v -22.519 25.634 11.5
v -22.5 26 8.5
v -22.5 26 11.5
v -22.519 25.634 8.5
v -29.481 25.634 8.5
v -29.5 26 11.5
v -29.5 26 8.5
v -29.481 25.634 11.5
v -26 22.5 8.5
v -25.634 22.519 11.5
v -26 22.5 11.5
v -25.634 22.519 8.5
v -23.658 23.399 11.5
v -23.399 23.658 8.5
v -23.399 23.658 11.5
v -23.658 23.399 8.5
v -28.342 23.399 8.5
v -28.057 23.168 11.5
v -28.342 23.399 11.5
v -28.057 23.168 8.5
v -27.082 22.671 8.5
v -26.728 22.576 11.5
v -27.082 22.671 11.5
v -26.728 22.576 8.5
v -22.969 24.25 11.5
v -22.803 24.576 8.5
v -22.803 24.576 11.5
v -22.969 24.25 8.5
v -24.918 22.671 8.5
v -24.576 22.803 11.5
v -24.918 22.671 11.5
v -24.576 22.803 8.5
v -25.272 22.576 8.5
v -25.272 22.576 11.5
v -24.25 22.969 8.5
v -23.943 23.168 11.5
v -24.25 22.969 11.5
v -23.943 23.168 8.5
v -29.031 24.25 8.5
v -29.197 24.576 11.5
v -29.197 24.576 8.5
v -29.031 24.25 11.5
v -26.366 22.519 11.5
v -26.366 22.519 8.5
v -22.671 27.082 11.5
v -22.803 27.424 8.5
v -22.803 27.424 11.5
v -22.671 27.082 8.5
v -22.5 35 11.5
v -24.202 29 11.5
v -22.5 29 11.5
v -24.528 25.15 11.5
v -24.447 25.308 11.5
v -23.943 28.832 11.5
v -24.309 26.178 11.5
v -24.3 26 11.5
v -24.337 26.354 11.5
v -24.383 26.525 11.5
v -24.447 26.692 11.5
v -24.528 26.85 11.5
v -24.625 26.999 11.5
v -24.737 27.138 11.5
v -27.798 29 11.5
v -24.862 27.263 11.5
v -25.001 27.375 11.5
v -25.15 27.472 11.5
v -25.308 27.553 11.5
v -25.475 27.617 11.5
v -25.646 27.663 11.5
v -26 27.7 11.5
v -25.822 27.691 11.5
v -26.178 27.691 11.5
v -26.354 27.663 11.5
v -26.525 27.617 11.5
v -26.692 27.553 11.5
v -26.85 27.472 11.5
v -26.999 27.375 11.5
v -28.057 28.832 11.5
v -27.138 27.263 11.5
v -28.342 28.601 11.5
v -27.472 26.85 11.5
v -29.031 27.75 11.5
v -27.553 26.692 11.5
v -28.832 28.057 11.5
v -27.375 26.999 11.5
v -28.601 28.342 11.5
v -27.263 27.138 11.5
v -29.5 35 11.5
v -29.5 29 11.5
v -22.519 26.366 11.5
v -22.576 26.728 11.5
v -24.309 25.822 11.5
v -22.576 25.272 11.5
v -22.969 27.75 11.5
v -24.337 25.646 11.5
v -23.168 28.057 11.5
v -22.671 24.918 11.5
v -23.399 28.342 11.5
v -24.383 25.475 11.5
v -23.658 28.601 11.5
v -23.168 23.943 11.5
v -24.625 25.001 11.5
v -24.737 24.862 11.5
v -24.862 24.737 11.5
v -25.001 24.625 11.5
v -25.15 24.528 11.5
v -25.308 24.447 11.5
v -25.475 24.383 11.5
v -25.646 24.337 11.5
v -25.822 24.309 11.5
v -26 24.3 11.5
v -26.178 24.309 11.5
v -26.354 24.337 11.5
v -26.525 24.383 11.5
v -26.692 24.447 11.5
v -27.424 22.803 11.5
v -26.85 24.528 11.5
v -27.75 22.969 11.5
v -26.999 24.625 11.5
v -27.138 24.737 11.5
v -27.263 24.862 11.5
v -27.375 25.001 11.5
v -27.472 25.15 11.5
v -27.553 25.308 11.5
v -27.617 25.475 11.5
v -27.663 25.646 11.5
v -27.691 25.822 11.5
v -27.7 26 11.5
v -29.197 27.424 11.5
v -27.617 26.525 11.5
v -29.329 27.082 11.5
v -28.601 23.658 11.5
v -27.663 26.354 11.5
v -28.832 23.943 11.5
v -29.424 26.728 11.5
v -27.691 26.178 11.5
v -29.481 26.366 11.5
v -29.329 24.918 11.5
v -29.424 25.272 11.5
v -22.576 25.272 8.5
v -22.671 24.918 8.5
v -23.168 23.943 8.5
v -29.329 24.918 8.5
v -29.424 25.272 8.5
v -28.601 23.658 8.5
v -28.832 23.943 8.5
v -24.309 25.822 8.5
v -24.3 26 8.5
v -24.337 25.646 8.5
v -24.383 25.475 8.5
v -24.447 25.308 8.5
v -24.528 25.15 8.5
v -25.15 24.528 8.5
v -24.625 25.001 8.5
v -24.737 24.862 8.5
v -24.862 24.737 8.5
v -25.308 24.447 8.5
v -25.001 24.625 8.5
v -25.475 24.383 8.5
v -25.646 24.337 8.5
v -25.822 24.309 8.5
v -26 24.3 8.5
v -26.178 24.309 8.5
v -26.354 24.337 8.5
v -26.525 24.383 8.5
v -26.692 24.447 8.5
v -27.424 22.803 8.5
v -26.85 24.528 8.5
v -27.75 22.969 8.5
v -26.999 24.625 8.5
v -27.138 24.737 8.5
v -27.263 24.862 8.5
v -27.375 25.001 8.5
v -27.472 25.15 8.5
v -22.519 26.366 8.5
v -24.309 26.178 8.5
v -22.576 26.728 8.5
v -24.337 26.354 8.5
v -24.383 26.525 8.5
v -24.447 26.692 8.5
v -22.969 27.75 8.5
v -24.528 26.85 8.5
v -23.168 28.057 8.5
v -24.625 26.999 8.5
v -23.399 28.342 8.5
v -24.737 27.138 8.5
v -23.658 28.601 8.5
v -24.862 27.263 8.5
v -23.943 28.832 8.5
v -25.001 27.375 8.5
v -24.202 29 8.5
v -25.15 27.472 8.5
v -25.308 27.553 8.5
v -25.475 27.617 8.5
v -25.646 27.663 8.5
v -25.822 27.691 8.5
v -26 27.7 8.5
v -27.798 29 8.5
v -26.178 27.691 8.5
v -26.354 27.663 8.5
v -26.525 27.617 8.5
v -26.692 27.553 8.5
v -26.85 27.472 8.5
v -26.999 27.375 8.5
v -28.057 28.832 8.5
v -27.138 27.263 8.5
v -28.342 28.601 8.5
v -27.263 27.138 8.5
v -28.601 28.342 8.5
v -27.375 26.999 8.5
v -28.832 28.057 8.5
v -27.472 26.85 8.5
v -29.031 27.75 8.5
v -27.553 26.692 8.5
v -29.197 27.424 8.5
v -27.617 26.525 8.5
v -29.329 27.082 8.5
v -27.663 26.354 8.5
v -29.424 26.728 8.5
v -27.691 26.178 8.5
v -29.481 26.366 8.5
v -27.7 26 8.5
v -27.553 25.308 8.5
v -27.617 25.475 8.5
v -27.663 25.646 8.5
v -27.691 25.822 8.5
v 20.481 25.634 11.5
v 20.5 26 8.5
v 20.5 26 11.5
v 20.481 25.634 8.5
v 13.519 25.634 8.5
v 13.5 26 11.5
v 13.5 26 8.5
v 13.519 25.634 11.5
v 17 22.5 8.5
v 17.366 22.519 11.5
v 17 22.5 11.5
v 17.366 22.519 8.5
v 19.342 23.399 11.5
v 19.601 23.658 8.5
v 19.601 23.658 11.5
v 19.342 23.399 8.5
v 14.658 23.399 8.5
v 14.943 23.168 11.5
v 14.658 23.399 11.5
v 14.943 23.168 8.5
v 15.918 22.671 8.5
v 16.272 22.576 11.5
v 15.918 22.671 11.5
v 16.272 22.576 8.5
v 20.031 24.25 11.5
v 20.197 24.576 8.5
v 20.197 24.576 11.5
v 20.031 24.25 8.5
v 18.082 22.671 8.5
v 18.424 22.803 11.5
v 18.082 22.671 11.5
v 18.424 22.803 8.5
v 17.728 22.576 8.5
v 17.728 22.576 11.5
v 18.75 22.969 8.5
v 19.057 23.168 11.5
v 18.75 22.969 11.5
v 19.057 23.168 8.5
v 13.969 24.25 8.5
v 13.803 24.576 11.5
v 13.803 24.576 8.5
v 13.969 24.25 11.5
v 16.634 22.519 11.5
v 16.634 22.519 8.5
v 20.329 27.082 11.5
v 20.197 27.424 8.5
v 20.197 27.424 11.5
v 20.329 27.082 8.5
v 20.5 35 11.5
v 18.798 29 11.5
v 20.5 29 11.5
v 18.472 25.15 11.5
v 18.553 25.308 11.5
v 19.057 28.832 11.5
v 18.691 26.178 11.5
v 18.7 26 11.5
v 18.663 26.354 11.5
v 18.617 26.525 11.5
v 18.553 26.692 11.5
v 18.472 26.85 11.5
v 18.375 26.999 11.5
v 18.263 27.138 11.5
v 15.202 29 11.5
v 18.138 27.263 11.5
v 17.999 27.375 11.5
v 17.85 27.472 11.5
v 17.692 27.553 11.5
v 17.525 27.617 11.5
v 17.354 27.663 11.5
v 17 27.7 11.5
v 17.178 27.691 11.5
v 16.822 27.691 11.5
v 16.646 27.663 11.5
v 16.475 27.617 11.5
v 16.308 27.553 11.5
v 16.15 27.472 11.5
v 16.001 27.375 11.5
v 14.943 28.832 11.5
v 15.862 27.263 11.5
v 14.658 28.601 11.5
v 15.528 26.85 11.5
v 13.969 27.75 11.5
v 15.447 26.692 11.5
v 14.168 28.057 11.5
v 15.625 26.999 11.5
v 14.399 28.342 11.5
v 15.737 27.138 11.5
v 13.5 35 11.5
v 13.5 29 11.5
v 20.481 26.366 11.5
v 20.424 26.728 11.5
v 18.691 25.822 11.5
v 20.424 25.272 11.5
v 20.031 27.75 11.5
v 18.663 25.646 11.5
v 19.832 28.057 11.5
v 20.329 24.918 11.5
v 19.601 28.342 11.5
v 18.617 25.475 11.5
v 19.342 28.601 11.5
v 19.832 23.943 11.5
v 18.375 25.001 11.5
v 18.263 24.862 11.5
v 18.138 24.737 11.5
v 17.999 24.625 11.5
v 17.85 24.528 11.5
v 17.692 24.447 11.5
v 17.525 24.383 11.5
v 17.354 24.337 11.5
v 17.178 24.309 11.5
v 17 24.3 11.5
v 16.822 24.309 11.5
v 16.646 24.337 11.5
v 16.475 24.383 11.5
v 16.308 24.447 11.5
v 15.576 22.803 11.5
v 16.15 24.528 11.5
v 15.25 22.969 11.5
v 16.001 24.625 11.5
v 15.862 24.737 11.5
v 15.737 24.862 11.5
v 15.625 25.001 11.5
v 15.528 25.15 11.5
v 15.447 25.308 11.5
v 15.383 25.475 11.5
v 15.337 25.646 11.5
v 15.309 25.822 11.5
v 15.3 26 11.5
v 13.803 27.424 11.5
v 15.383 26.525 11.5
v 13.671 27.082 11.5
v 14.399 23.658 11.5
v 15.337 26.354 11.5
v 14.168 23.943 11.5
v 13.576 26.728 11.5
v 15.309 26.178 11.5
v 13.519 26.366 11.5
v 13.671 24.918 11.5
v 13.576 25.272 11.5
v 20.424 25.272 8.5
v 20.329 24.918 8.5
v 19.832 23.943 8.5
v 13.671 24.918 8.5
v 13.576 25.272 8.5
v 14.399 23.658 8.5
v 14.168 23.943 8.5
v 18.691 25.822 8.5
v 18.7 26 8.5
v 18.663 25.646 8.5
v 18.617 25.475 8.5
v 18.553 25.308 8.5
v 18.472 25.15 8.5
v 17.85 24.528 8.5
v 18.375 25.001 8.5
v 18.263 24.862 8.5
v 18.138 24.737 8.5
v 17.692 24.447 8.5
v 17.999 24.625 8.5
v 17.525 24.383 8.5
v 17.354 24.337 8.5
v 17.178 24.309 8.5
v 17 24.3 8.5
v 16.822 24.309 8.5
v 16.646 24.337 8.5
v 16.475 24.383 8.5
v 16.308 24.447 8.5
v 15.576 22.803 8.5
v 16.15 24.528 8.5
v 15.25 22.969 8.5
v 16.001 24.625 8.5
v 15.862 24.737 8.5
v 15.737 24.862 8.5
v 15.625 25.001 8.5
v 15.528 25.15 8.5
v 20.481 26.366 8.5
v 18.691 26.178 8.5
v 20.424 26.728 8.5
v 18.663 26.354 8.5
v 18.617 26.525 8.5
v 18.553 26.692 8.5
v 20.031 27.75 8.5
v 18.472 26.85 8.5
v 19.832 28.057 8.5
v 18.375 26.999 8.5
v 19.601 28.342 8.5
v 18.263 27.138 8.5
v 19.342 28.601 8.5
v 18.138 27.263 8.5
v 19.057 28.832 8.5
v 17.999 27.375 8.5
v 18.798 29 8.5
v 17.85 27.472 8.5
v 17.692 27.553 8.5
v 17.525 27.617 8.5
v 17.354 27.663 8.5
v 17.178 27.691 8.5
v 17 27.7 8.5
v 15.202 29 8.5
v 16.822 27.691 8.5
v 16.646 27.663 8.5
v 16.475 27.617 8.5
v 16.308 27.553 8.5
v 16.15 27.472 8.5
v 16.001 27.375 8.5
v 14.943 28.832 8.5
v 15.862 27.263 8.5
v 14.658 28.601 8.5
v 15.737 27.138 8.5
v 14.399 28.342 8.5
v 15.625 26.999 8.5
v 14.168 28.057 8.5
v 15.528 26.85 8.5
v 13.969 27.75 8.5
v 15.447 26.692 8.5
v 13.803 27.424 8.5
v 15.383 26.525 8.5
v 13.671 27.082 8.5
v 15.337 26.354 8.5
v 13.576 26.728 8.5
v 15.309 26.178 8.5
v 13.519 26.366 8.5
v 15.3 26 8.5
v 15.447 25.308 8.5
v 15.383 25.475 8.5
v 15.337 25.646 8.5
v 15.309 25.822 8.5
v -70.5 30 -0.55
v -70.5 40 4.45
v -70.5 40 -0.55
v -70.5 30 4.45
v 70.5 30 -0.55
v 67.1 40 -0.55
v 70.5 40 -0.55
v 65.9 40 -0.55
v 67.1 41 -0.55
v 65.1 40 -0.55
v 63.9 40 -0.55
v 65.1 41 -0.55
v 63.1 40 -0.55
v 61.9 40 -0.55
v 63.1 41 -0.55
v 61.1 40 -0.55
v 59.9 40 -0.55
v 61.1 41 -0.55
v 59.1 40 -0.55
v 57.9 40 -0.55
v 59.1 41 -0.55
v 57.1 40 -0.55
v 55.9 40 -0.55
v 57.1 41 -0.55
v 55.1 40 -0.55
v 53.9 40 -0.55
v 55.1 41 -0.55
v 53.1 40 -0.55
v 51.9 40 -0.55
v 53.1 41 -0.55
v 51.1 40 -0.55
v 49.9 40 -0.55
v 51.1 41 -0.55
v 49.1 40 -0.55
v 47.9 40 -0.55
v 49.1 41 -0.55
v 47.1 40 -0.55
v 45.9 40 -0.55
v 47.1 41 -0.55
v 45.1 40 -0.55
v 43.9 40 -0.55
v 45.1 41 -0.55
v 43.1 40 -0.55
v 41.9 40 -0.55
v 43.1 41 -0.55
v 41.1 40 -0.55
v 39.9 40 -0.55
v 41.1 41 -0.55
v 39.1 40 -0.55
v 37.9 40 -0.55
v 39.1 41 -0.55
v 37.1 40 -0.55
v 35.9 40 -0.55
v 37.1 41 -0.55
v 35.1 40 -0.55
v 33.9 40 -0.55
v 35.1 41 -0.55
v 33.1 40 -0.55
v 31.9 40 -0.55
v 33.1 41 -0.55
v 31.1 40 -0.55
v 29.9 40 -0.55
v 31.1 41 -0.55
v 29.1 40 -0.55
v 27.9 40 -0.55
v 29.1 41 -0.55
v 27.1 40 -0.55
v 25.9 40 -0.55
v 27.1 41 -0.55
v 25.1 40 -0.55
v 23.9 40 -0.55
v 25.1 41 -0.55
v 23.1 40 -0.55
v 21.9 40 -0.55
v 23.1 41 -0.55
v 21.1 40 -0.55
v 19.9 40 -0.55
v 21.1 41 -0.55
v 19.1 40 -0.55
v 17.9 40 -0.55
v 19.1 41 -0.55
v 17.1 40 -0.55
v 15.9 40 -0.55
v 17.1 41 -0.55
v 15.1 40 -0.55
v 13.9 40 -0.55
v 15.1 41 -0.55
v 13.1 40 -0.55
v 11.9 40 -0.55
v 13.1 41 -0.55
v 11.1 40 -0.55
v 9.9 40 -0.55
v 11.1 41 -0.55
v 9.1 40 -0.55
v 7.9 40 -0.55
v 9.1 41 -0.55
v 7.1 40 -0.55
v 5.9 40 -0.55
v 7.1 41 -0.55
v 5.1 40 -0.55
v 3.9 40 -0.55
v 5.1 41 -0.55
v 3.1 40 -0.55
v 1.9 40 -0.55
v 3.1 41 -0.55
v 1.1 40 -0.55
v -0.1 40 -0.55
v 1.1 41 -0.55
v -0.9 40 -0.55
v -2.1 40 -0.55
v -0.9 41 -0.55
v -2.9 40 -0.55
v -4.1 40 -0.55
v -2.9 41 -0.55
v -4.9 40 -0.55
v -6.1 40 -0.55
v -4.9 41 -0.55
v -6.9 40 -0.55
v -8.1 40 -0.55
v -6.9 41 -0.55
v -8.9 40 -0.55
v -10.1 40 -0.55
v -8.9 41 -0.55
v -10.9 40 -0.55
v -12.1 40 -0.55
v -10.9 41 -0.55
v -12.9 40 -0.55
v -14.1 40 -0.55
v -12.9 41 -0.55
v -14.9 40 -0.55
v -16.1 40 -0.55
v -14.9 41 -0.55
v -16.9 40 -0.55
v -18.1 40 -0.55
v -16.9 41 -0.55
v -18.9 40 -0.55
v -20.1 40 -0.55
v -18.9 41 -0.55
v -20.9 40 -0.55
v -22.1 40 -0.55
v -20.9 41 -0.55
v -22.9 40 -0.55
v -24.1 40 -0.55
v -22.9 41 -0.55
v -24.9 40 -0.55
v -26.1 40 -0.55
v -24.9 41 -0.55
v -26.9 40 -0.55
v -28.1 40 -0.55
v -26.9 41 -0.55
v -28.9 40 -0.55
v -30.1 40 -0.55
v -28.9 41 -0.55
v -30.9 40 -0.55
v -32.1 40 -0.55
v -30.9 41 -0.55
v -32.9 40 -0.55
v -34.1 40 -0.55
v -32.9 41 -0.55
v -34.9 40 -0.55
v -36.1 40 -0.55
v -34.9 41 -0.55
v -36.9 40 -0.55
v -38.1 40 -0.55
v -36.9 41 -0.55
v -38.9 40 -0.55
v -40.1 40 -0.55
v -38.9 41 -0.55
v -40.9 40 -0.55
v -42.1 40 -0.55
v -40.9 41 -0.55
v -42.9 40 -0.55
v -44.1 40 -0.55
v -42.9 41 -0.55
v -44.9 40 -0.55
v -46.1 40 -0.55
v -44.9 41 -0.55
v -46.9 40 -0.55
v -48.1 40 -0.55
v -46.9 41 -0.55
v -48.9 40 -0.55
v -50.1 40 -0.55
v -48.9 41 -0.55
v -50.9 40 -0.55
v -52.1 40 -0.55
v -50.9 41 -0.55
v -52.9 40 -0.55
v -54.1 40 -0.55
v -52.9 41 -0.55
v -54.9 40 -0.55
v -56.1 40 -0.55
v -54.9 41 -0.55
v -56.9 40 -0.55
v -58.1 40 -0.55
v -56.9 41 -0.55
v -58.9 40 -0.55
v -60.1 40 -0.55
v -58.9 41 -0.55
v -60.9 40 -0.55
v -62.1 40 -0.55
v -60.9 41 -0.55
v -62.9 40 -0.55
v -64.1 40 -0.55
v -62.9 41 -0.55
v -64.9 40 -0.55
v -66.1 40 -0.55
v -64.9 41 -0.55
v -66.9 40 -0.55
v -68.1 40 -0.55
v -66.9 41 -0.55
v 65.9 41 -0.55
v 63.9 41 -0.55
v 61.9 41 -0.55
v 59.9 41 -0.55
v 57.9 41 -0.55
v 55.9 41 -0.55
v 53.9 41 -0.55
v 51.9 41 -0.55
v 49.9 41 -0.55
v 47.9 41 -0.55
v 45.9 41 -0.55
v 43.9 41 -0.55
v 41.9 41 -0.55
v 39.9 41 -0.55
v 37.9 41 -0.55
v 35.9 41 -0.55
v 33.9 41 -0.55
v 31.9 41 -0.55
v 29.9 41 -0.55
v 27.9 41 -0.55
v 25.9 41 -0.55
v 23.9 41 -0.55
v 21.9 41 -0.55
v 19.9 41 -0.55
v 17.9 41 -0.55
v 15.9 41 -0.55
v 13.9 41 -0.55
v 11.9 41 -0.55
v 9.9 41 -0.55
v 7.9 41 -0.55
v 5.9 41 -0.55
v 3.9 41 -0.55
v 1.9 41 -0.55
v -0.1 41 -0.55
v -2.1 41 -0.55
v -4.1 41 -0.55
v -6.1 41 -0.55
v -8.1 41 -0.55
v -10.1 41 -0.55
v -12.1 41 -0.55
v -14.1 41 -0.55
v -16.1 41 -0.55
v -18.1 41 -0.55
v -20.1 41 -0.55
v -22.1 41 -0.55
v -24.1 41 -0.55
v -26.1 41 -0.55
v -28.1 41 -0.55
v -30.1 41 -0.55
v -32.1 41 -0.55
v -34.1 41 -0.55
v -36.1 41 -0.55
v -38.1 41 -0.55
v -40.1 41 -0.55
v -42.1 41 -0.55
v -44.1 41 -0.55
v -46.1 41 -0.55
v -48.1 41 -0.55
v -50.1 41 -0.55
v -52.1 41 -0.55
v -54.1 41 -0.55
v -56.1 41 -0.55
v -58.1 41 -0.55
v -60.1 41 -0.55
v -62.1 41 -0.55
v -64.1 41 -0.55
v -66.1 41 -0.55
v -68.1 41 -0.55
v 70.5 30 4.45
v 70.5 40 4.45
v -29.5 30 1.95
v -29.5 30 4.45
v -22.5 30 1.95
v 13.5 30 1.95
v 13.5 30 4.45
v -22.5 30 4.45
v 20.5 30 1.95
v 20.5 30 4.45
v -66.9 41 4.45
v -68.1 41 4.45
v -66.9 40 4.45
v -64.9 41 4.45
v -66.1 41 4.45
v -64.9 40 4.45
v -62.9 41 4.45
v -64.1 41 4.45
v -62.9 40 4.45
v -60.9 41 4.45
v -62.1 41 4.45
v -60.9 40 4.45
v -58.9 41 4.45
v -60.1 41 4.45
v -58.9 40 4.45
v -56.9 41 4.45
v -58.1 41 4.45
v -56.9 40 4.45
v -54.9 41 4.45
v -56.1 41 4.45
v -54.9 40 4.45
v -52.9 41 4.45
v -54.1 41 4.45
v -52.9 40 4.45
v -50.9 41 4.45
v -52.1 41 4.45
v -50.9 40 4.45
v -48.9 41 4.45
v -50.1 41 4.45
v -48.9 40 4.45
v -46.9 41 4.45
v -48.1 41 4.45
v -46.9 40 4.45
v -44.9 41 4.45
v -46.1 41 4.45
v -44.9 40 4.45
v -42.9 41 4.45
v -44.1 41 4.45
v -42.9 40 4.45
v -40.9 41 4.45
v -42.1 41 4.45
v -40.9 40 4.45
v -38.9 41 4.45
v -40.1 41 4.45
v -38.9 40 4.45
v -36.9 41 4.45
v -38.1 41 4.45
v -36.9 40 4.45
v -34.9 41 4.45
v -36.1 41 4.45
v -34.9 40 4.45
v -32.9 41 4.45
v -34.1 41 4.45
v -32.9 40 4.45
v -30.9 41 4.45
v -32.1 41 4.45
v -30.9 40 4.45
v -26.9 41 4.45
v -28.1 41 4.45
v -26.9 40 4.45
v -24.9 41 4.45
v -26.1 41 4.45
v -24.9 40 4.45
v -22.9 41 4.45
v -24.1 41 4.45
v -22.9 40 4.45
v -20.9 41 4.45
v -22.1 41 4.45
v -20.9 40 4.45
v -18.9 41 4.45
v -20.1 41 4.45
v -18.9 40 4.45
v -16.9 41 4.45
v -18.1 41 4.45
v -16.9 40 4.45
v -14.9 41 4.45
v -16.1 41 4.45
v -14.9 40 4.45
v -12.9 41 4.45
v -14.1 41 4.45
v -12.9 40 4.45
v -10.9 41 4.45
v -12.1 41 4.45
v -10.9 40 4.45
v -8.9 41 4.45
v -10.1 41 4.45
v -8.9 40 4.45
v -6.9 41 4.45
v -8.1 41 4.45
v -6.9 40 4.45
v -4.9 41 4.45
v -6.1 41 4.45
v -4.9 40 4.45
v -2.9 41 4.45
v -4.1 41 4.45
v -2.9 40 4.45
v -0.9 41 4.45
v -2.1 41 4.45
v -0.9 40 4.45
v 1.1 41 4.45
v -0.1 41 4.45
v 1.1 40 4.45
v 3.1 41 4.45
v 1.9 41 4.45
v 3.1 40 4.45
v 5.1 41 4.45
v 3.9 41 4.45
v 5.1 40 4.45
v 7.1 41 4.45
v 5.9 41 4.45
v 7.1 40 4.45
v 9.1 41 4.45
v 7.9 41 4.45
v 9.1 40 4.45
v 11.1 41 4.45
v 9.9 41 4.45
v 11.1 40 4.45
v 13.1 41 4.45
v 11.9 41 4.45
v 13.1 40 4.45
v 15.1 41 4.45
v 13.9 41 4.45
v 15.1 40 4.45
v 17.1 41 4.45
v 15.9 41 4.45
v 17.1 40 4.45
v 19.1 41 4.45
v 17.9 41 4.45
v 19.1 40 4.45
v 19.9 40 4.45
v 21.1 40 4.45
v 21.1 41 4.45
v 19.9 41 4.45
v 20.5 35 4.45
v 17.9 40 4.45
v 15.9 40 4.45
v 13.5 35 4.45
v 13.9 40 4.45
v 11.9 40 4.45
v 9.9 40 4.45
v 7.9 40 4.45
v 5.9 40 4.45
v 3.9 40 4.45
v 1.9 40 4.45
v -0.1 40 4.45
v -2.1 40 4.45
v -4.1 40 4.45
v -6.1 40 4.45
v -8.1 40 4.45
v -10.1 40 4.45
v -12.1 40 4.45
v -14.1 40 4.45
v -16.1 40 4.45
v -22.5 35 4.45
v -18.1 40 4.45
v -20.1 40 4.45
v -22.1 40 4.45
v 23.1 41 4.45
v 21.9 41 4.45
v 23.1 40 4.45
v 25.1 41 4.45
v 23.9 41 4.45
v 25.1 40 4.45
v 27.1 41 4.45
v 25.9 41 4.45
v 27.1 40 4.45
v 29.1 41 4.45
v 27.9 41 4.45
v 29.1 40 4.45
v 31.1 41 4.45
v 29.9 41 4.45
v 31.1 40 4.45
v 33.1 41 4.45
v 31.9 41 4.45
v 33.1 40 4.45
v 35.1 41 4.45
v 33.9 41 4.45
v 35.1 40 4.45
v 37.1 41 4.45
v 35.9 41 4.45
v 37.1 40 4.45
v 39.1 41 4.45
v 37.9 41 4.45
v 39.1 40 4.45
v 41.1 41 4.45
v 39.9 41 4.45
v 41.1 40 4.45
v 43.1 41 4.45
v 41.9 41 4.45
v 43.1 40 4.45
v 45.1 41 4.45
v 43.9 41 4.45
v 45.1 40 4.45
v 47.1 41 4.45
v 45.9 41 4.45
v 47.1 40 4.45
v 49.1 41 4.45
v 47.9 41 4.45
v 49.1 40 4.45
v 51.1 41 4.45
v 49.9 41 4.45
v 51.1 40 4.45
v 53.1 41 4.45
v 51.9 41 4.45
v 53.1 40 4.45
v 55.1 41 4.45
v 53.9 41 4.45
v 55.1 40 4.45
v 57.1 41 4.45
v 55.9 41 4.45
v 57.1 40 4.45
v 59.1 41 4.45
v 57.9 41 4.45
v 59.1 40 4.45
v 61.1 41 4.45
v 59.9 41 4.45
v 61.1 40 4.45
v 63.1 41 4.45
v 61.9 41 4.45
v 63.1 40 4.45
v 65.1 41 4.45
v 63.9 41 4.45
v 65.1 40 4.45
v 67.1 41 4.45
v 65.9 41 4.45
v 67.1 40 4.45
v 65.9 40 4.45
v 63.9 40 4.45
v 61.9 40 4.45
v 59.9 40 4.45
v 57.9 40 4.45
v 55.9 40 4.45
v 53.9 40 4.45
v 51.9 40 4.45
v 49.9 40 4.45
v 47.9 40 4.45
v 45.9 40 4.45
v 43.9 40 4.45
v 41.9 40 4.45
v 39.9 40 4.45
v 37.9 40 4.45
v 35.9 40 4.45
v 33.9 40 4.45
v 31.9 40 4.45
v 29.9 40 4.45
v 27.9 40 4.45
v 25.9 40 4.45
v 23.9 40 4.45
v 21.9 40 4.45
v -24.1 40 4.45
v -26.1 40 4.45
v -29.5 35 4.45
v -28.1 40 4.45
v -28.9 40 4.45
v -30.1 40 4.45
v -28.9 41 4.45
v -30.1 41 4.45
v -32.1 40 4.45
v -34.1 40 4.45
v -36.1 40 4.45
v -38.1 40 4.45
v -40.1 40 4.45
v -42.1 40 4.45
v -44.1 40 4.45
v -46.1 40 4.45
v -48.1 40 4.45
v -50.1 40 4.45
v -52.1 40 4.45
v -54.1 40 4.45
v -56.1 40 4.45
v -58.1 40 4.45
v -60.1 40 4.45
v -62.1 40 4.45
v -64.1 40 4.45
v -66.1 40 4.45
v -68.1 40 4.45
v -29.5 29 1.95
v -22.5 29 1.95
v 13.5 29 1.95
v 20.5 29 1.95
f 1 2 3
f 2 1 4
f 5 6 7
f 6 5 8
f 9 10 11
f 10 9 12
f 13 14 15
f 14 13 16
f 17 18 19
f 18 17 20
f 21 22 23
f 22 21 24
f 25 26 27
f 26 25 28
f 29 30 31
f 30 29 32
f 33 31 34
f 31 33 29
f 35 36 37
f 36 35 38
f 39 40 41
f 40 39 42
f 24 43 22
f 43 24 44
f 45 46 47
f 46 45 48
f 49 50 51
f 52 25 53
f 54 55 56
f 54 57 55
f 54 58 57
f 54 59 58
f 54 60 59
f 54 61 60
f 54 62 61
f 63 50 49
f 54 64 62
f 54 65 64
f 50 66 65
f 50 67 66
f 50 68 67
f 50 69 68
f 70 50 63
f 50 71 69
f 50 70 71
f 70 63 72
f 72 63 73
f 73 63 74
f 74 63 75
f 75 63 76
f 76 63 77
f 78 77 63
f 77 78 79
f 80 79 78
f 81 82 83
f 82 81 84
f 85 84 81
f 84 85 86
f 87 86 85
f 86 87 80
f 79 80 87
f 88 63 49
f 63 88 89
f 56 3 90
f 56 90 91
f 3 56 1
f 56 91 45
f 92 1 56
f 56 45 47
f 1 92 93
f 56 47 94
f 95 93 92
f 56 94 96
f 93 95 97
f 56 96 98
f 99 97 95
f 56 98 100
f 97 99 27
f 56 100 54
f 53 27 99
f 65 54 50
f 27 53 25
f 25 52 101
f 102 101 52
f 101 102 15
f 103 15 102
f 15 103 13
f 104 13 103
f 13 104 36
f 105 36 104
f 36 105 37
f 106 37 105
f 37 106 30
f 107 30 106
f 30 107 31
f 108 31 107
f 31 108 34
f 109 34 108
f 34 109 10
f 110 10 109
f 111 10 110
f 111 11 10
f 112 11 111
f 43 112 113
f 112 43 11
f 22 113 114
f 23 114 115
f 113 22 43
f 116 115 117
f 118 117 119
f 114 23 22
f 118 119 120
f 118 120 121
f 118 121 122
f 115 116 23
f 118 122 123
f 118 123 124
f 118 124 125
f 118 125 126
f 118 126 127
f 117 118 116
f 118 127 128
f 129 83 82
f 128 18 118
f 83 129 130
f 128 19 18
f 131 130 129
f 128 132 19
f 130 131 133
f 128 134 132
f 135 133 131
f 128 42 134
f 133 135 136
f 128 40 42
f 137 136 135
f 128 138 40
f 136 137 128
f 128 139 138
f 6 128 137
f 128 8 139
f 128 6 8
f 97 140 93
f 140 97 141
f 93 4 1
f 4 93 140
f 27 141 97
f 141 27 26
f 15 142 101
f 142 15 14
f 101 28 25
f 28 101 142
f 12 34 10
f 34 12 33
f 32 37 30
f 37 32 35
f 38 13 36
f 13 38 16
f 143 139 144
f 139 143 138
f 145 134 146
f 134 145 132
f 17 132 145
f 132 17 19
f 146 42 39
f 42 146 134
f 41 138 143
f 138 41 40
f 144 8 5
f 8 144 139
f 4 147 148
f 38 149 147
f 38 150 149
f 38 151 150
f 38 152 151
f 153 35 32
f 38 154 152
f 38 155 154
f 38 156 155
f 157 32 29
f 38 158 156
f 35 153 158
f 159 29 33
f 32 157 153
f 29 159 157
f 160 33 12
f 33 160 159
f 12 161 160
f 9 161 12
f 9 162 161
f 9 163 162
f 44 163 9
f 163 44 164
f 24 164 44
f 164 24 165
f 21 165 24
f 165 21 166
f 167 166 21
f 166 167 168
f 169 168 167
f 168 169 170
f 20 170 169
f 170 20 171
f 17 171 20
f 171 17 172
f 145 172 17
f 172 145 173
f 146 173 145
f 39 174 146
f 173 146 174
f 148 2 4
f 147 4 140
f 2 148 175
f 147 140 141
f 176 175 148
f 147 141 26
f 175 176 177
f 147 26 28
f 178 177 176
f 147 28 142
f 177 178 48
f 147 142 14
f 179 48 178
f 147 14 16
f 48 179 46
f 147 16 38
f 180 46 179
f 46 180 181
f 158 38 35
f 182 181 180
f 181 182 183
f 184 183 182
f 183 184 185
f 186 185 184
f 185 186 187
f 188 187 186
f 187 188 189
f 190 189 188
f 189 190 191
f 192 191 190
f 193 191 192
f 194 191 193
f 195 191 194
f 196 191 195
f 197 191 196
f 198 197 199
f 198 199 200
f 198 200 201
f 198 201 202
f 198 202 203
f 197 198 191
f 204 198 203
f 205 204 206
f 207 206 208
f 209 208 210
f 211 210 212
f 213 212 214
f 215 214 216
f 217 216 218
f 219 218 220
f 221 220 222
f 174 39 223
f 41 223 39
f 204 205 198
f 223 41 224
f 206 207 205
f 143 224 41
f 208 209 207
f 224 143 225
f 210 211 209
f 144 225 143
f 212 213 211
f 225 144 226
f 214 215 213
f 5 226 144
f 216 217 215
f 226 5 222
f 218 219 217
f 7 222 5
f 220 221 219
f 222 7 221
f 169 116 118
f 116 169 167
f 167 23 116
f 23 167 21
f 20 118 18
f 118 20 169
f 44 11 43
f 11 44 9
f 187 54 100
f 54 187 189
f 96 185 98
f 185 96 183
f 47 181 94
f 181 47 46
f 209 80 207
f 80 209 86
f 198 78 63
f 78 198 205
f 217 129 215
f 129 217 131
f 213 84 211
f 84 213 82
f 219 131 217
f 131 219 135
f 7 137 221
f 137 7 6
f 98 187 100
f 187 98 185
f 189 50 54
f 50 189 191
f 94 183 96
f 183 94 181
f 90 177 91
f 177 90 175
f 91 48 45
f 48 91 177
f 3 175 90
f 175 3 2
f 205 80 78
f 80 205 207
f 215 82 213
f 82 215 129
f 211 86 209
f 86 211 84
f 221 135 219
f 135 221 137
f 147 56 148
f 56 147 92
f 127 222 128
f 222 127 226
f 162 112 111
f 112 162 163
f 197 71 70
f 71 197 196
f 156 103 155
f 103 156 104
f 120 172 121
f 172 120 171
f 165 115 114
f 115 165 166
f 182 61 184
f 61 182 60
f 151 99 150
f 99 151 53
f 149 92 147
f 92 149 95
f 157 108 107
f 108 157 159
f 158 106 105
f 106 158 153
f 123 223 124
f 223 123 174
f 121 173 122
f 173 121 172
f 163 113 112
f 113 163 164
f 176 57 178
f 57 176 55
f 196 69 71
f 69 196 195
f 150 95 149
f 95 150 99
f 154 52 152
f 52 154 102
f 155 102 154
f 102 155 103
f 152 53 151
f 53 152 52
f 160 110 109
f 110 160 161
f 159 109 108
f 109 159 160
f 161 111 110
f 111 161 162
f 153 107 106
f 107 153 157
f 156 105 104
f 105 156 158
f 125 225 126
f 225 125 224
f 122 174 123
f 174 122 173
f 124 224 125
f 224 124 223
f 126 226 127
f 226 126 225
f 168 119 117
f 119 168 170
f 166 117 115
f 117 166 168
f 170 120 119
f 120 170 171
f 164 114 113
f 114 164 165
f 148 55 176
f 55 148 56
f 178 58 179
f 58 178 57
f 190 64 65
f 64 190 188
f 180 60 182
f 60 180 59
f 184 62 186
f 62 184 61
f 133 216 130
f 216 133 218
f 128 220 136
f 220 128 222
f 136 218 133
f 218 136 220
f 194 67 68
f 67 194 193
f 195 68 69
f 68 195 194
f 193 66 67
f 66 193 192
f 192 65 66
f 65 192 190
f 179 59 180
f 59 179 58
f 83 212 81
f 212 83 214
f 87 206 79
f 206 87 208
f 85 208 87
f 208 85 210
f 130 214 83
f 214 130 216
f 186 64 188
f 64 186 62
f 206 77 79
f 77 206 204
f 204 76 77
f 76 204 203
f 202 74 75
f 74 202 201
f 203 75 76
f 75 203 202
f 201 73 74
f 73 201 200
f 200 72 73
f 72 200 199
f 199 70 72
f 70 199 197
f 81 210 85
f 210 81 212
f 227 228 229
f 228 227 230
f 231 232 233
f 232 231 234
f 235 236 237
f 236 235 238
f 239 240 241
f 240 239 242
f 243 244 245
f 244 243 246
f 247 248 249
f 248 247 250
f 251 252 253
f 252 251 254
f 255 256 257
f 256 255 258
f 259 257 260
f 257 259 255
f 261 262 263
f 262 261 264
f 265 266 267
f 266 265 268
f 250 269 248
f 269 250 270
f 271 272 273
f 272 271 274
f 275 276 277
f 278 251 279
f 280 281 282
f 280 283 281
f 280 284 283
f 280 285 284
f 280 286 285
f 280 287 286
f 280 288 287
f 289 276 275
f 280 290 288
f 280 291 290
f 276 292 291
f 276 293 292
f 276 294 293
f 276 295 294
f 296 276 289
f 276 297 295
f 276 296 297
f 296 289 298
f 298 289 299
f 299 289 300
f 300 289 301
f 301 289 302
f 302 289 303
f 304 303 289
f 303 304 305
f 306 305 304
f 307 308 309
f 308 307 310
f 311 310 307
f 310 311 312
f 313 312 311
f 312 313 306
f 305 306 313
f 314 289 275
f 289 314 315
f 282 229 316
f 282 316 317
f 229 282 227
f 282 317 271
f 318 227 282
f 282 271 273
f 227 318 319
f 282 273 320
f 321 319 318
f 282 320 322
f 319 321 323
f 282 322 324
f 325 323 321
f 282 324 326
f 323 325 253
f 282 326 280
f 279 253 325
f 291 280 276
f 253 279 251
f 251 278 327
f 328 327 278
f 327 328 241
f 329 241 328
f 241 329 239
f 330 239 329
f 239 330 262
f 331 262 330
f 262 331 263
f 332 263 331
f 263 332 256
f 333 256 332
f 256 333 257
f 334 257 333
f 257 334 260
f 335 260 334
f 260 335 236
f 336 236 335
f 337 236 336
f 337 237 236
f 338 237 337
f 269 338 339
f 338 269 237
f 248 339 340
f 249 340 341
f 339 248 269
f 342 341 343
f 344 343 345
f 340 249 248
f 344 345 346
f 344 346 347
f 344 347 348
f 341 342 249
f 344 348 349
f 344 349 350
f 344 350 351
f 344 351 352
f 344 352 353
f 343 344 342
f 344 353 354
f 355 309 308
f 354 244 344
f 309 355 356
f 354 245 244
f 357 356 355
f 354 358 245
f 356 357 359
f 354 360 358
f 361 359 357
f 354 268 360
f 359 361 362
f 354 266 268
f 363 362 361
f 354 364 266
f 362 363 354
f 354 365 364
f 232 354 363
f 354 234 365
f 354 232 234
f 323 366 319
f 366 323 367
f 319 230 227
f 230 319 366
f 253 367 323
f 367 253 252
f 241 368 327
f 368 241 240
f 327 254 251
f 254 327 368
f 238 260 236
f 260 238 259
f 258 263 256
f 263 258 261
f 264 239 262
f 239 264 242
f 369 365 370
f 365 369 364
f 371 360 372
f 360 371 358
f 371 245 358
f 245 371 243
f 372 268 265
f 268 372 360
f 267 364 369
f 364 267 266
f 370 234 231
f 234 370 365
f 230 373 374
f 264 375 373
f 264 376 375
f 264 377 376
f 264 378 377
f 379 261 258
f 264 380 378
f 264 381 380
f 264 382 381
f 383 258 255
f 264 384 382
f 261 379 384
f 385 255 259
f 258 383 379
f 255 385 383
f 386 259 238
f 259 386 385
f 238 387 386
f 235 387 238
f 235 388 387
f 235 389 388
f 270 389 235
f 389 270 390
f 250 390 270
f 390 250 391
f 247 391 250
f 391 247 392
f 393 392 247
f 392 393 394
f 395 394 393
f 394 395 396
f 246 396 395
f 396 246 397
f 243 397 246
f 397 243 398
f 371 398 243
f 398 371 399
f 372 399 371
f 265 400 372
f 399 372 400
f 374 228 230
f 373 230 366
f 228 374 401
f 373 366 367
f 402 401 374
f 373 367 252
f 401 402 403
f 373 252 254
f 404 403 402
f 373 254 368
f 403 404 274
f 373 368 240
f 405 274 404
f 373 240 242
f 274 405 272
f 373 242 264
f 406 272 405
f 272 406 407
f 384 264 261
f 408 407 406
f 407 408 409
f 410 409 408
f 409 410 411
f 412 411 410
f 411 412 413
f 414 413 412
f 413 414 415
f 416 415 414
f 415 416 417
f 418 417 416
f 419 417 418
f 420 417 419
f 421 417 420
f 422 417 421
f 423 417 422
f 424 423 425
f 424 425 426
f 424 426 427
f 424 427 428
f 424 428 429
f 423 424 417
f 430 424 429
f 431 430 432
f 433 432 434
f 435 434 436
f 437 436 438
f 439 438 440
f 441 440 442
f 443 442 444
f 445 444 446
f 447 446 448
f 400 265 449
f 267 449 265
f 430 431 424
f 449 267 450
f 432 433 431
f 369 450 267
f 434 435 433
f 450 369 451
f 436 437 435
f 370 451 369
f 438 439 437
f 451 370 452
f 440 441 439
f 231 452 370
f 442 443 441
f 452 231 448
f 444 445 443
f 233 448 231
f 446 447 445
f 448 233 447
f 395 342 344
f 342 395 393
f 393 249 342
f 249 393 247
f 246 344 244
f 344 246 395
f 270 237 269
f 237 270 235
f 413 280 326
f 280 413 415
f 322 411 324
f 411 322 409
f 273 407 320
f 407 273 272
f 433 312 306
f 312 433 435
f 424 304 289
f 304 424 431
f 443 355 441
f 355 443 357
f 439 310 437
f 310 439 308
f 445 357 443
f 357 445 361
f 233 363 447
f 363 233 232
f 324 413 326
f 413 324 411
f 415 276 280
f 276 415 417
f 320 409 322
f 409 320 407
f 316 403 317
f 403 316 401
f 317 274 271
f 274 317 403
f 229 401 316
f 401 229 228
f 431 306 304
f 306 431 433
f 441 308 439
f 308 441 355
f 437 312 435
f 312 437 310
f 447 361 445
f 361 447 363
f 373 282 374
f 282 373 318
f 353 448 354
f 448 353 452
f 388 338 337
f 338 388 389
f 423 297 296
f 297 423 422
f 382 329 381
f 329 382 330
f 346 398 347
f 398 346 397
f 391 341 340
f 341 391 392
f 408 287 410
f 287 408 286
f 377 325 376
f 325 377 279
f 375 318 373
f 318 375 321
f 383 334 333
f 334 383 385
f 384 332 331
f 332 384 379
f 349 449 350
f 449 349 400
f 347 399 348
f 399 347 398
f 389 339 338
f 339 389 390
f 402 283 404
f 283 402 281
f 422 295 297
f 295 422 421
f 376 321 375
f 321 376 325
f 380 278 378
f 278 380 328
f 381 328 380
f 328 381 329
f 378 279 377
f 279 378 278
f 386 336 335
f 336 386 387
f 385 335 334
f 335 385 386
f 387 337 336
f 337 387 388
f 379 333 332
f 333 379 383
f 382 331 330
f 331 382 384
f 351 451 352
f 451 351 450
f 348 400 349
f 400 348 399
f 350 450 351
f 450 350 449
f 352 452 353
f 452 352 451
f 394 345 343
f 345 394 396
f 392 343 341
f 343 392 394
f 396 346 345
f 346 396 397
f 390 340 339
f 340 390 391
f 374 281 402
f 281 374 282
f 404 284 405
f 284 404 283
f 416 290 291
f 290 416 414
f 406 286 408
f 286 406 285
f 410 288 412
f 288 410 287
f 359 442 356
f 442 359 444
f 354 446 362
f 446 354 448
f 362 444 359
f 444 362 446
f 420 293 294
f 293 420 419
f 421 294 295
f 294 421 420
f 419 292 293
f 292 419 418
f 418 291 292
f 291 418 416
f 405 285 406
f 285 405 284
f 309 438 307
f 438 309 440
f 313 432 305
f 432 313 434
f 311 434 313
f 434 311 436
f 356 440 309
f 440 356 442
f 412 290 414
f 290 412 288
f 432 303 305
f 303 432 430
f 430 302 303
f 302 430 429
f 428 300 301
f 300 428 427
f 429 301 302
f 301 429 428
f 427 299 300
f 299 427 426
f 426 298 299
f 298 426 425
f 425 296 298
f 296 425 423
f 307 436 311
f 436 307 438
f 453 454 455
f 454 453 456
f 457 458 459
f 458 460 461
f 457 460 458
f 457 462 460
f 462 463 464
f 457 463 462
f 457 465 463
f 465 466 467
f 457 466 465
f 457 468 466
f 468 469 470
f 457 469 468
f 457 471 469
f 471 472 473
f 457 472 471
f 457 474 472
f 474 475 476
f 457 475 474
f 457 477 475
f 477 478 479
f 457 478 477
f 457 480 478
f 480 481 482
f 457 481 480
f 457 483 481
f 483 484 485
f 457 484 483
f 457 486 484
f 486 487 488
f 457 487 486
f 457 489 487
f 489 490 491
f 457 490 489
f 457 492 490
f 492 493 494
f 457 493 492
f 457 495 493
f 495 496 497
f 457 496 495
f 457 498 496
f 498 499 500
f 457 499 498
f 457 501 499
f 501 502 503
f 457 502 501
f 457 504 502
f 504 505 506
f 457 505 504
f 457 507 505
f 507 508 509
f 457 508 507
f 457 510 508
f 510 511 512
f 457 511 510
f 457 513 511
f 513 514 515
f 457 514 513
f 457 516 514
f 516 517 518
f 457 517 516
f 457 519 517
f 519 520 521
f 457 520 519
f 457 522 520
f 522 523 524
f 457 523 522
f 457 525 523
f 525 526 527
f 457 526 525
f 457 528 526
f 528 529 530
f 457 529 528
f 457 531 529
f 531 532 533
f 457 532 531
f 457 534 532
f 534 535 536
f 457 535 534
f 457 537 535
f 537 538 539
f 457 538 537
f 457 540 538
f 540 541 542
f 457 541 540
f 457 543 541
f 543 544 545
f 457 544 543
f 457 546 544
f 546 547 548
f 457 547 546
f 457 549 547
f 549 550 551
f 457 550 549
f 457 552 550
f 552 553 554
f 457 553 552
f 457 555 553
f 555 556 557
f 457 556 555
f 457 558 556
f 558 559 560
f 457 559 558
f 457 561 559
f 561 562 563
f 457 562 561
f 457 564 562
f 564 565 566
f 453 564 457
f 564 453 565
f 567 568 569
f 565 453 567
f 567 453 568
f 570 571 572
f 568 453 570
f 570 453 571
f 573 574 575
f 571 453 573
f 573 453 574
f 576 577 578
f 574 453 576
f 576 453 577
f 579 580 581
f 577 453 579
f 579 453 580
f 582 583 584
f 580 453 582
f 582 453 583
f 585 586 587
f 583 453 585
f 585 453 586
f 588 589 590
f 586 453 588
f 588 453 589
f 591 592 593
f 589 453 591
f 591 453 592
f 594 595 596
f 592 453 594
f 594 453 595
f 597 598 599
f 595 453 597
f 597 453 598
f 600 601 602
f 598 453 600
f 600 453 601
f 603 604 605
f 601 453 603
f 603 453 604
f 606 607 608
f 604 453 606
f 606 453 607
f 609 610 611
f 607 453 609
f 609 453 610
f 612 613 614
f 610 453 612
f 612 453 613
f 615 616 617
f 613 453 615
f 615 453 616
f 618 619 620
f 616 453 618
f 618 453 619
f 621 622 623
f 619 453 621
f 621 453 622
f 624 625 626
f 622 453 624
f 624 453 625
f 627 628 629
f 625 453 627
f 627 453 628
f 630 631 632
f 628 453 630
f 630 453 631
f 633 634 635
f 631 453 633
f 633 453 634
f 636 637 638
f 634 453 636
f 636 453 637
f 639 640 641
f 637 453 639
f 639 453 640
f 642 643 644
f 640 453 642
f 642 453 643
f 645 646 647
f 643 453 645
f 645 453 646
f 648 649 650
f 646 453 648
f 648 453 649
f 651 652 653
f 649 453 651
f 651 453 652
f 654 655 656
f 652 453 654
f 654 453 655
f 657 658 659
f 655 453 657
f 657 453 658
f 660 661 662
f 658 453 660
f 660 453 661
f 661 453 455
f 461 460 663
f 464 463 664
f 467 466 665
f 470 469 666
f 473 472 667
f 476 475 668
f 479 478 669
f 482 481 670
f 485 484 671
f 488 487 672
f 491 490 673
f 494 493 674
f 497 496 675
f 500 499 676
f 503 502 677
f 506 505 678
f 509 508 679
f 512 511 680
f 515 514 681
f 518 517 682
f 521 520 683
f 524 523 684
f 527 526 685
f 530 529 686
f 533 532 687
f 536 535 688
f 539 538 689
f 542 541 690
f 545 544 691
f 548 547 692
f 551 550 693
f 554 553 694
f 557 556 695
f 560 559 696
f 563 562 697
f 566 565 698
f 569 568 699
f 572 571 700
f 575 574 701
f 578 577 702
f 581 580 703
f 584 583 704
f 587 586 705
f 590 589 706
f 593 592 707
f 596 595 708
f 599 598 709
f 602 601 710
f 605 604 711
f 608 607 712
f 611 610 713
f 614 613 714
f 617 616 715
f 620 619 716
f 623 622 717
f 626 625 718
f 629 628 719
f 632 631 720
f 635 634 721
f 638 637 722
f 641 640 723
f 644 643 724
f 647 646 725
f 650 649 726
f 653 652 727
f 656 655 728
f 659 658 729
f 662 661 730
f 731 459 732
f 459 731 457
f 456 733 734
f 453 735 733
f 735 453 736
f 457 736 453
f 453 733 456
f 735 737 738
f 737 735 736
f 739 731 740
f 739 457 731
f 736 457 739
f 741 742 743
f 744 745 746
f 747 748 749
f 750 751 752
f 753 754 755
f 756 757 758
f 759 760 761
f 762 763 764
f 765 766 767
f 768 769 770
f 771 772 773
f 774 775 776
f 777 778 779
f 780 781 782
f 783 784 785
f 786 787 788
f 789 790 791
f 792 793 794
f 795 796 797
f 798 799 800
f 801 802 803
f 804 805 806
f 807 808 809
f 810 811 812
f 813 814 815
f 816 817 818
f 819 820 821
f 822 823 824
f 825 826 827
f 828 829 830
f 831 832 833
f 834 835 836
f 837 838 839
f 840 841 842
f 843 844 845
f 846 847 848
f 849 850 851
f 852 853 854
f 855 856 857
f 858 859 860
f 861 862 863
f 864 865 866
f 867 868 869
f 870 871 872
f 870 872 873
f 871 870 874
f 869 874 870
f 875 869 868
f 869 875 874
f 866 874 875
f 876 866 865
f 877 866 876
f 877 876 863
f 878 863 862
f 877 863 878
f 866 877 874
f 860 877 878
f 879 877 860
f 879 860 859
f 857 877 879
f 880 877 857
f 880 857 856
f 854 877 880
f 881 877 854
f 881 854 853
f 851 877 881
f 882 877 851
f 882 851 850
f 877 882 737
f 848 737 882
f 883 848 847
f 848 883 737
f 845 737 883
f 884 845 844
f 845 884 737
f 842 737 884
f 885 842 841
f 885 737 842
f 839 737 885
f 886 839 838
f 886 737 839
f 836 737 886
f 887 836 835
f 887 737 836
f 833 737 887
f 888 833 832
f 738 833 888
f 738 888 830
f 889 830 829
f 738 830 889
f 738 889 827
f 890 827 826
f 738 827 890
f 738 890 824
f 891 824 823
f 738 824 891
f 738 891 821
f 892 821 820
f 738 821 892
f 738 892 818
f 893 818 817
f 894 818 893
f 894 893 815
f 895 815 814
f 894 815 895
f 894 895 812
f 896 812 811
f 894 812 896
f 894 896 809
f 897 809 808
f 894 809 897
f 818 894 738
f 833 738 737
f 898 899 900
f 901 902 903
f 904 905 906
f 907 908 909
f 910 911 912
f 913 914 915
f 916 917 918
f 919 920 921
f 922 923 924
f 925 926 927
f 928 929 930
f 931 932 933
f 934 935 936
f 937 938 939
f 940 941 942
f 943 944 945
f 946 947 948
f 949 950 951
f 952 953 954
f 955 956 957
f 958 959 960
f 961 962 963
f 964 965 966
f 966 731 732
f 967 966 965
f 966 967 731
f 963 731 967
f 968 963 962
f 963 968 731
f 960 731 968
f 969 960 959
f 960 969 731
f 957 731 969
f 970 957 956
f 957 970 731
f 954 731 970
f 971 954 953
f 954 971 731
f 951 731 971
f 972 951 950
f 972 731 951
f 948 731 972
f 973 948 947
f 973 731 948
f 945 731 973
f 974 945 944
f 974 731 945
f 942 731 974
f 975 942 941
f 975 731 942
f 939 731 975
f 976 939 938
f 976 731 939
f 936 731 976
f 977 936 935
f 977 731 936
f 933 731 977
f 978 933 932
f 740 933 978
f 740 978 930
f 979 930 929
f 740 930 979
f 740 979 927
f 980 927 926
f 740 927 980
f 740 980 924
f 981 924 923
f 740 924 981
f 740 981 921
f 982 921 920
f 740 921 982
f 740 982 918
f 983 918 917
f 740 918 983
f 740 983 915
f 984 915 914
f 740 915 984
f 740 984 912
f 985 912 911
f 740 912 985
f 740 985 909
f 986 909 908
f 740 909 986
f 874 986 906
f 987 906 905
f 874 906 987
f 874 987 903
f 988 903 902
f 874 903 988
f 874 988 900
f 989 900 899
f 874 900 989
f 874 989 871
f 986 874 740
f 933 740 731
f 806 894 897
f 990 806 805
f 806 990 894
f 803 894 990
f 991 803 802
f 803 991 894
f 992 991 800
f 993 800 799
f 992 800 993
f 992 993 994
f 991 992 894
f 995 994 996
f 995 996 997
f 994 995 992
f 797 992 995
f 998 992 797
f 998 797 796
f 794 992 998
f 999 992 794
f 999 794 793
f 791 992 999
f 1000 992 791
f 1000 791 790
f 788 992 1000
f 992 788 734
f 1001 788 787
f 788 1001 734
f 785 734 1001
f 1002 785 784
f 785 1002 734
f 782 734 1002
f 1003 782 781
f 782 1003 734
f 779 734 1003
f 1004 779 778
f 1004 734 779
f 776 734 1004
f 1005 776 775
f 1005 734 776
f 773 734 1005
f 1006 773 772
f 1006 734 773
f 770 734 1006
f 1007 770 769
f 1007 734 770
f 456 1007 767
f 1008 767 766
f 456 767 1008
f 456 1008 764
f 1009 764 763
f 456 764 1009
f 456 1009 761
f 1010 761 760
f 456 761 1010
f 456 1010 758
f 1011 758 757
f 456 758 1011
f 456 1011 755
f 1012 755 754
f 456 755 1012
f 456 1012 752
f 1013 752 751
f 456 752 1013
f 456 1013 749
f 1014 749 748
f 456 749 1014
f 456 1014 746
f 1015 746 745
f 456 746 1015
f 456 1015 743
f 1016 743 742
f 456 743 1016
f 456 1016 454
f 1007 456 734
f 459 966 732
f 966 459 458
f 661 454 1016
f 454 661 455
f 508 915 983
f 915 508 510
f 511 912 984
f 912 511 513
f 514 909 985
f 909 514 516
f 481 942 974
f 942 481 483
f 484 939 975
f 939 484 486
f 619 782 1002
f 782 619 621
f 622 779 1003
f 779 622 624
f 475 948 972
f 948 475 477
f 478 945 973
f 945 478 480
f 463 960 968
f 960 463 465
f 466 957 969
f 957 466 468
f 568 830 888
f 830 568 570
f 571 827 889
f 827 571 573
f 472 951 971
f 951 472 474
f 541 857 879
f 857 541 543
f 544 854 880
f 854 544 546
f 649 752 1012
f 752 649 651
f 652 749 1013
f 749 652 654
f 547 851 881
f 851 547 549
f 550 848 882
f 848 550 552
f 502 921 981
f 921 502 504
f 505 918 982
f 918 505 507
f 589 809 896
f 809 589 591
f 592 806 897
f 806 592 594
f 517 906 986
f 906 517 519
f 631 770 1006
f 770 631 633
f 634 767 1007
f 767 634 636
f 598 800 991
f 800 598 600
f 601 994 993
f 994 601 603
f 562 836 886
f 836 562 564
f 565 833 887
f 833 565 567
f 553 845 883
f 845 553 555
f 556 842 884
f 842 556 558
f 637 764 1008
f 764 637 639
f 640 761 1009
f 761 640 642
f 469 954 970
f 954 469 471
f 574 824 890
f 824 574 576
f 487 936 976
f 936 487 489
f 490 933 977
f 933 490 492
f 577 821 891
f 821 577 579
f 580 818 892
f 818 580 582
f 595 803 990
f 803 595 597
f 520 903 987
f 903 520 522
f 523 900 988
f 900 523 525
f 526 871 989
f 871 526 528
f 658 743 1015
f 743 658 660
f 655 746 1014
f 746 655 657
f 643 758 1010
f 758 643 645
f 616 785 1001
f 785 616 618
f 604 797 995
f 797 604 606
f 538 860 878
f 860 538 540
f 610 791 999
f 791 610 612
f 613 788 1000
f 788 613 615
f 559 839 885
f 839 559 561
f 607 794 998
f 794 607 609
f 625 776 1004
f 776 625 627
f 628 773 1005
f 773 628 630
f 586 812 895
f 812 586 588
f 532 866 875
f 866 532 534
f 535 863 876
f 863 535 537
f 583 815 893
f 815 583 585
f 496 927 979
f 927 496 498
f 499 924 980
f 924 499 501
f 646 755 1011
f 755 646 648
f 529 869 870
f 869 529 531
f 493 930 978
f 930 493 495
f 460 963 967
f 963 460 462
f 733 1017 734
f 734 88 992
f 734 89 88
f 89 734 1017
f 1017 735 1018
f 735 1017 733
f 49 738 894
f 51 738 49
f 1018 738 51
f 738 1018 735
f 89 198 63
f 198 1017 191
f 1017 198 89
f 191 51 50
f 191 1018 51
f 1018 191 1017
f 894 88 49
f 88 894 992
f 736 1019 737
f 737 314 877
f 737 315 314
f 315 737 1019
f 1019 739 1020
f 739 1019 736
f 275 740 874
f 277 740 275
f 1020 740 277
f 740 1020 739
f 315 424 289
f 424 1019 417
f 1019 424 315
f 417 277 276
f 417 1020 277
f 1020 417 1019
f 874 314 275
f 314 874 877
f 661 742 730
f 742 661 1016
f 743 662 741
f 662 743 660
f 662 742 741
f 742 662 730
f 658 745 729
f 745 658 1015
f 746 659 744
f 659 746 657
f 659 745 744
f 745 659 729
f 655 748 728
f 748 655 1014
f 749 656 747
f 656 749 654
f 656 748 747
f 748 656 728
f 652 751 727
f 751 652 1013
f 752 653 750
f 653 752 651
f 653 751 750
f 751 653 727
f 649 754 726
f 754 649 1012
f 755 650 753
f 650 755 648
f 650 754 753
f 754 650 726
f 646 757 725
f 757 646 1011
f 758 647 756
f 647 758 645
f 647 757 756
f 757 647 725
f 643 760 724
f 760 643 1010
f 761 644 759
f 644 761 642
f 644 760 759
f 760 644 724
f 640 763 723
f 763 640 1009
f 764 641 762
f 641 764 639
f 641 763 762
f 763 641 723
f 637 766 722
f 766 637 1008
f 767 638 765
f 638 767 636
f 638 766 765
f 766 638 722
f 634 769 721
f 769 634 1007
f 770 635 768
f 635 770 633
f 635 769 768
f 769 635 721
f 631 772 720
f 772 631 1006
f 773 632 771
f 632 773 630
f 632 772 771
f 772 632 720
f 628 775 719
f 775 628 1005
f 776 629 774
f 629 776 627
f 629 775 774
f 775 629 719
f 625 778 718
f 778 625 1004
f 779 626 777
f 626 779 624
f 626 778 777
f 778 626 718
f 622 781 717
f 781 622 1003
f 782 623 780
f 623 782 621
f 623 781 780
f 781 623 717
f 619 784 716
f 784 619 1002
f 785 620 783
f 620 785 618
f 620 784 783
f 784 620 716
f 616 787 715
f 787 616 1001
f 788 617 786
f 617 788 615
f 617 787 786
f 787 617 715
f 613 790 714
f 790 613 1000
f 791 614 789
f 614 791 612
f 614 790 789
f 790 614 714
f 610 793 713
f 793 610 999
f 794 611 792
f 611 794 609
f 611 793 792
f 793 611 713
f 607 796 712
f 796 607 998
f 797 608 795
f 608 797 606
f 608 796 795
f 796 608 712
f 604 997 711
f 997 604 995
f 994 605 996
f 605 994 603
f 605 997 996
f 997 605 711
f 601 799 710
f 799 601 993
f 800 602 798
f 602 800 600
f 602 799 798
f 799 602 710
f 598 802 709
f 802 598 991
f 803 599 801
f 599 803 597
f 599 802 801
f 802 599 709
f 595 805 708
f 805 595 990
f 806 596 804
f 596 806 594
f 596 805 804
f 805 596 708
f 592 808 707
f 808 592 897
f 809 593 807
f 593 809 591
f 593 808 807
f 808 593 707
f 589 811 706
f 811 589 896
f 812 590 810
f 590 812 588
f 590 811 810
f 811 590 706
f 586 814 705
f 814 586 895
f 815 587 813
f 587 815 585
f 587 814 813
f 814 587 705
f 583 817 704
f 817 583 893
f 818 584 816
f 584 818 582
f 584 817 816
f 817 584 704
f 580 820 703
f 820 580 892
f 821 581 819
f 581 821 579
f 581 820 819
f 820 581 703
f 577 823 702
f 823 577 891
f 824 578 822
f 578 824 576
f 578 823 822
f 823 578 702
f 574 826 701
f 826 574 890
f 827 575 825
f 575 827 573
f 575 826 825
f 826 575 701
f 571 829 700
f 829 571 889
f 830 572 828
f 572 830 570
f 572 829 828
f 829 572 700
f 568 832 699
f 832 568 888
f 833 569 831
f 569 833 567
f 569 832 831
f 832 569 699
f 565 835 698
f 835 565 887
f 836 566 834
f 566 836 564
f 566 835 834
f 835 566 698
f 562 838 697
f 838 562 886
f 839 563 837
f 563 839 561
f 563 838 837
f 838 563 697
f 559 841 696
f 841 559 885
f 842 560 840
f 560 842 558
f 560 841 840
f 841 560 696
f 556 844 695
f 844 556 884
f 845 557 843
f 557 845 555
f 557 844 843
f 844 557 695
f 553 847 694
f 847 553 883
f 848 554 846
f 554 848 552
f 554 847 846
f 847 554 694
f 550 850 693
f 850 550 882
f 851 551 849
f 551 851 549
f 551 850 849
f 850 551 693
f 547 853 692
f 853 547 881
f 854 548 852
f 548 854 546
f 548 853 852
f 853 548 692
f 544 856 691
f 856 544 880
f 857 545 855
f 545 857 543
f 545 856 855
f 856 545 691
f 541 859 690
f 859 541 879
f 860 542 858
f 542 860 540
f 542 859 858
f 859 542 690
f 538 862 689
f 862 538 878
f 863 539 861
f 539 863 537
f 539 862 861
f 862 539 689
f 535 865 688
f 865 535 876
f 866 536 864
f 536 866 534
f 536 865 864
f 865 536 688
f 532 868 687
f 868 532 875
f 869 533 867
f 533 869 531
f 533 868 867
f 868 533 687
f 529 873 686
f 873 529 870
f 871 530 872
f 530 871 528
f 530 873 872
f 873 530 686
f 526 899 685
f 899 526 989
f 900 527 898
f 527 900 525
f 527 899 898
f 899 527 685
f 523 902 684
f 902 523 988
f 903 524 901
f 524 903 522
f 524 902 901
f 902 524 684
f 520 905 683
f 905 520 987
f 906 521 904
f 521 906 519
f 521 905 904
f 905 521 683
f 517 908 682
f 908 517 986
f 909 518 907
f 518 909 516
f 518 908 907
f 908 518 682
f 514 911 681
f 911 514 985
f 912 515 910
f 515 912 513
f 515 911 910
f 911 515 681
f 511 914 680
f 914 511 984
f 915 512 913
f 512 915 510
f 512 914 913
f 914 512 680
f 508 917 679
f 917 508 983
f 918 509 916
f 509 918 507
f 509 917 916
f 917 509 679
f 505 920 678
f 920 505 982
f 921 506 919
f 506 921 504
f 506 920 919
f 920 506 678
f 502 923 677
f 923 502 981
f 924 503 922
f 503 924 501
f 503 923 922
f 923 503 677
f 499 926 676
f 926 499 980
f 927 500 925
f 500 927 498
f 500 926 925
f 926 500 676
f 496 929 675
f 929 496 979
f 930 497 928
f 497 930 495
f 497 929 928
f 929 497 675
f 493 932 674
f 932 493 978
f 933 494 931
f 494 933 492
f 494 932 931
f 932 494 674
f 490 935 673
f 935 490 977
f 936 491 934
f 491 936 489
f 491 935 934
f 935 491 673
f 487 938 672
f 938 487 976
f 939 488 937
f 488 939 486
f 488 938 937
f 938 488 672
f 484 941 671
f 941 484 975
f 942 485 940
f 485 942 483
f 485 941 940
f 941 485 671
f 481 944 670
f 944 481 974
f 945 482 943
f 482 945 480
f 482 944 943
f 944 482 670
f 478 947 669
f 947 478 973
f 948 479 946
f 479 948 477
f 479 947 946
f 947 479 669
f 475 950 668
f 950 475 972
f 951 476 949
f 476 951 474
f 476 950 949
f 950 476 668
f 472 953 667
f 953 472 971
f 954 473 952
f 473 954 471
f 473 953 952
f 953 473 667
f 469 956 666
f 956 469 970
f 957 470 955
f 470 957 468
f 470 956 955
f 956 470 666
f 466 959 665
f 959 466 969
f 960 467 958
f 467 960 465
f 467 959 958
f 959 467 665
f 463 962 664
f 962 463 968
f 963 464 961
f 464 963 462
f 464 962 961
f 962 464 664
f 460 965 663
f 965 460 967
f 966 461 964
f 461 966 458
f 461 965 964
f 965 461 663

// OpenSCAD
/* ==========================================================================
   PROJETO CAMPO TÁTIL - CREMALHEIRA DA PONTE X (141.0mm COMPRIMENTO)
   Peça de 141.0mm alinhada em Y = -17.5mm para máxima folga do motor X
   Orientada de ponta-cabeça para suporte zero na mesa de impressão
   ========================================================================== */

$fn = 60;
furo_m3 = 3.4;

module ponte_movel_x_impressao() {
    // Rotaciona a ponte para que as torres apontem para cima (+Z) e a base fique 100% plana na mesa
    rotate([180, 0, 0]) translate([0, 0, -0.55]) {
        union() {
            // Viga principal da cremalheira (141.0mm de comprimento, Y = -17.5mm)
            translate([0, -17.5, 0.55])
                cube([141.0, 10, 5], center=true);
            
            // Coluna de Fixação Esquerda do motor Y (x = -26.0mm)
            translate([-26.0, -14.5, (0.55 - 9.0)/2])
                cube([7, 6, 0.55 + 9.0], center=true);
            translate([-26.0, -8.5, -9.0 + 1.5]) {
                difference() {
                    cylinder(h = 3, r = 3.5, center=true);
                    cylinder(h = 4, r = furo_m3/2, center=true);
                }
            }

            // Coluna de Fixação Direita do motor Y (x = 17.0mm)
            translate([17.0, -14.5, (0.55 - 9.0)/2])
                cube([7, 6, 0.55 + 9.0], center=true);
            translate([17.0, -8.5, -9.0 + 1.5]) {
                difference() {
                    cylinder(h = 3, r = 3.5, center=true);
                    cylinder(h = 4, r = furo_m3/2, center=true);
                }
            }
        }
        
        // Dentes da Cremalheira X na face frontal (-Y)
        for (x = [-67.5 : 2.0 : 67.5]) {
            translate([x, -23.0, 0.55])
                cube([1.2, 1.0, 5.0], center=true);
        }
    }
}

// Renderiza a peça pronta para fatiar no plano Z=0
translate([0, 17.5, 1.95])
    ponte_movel_x_impressao();
